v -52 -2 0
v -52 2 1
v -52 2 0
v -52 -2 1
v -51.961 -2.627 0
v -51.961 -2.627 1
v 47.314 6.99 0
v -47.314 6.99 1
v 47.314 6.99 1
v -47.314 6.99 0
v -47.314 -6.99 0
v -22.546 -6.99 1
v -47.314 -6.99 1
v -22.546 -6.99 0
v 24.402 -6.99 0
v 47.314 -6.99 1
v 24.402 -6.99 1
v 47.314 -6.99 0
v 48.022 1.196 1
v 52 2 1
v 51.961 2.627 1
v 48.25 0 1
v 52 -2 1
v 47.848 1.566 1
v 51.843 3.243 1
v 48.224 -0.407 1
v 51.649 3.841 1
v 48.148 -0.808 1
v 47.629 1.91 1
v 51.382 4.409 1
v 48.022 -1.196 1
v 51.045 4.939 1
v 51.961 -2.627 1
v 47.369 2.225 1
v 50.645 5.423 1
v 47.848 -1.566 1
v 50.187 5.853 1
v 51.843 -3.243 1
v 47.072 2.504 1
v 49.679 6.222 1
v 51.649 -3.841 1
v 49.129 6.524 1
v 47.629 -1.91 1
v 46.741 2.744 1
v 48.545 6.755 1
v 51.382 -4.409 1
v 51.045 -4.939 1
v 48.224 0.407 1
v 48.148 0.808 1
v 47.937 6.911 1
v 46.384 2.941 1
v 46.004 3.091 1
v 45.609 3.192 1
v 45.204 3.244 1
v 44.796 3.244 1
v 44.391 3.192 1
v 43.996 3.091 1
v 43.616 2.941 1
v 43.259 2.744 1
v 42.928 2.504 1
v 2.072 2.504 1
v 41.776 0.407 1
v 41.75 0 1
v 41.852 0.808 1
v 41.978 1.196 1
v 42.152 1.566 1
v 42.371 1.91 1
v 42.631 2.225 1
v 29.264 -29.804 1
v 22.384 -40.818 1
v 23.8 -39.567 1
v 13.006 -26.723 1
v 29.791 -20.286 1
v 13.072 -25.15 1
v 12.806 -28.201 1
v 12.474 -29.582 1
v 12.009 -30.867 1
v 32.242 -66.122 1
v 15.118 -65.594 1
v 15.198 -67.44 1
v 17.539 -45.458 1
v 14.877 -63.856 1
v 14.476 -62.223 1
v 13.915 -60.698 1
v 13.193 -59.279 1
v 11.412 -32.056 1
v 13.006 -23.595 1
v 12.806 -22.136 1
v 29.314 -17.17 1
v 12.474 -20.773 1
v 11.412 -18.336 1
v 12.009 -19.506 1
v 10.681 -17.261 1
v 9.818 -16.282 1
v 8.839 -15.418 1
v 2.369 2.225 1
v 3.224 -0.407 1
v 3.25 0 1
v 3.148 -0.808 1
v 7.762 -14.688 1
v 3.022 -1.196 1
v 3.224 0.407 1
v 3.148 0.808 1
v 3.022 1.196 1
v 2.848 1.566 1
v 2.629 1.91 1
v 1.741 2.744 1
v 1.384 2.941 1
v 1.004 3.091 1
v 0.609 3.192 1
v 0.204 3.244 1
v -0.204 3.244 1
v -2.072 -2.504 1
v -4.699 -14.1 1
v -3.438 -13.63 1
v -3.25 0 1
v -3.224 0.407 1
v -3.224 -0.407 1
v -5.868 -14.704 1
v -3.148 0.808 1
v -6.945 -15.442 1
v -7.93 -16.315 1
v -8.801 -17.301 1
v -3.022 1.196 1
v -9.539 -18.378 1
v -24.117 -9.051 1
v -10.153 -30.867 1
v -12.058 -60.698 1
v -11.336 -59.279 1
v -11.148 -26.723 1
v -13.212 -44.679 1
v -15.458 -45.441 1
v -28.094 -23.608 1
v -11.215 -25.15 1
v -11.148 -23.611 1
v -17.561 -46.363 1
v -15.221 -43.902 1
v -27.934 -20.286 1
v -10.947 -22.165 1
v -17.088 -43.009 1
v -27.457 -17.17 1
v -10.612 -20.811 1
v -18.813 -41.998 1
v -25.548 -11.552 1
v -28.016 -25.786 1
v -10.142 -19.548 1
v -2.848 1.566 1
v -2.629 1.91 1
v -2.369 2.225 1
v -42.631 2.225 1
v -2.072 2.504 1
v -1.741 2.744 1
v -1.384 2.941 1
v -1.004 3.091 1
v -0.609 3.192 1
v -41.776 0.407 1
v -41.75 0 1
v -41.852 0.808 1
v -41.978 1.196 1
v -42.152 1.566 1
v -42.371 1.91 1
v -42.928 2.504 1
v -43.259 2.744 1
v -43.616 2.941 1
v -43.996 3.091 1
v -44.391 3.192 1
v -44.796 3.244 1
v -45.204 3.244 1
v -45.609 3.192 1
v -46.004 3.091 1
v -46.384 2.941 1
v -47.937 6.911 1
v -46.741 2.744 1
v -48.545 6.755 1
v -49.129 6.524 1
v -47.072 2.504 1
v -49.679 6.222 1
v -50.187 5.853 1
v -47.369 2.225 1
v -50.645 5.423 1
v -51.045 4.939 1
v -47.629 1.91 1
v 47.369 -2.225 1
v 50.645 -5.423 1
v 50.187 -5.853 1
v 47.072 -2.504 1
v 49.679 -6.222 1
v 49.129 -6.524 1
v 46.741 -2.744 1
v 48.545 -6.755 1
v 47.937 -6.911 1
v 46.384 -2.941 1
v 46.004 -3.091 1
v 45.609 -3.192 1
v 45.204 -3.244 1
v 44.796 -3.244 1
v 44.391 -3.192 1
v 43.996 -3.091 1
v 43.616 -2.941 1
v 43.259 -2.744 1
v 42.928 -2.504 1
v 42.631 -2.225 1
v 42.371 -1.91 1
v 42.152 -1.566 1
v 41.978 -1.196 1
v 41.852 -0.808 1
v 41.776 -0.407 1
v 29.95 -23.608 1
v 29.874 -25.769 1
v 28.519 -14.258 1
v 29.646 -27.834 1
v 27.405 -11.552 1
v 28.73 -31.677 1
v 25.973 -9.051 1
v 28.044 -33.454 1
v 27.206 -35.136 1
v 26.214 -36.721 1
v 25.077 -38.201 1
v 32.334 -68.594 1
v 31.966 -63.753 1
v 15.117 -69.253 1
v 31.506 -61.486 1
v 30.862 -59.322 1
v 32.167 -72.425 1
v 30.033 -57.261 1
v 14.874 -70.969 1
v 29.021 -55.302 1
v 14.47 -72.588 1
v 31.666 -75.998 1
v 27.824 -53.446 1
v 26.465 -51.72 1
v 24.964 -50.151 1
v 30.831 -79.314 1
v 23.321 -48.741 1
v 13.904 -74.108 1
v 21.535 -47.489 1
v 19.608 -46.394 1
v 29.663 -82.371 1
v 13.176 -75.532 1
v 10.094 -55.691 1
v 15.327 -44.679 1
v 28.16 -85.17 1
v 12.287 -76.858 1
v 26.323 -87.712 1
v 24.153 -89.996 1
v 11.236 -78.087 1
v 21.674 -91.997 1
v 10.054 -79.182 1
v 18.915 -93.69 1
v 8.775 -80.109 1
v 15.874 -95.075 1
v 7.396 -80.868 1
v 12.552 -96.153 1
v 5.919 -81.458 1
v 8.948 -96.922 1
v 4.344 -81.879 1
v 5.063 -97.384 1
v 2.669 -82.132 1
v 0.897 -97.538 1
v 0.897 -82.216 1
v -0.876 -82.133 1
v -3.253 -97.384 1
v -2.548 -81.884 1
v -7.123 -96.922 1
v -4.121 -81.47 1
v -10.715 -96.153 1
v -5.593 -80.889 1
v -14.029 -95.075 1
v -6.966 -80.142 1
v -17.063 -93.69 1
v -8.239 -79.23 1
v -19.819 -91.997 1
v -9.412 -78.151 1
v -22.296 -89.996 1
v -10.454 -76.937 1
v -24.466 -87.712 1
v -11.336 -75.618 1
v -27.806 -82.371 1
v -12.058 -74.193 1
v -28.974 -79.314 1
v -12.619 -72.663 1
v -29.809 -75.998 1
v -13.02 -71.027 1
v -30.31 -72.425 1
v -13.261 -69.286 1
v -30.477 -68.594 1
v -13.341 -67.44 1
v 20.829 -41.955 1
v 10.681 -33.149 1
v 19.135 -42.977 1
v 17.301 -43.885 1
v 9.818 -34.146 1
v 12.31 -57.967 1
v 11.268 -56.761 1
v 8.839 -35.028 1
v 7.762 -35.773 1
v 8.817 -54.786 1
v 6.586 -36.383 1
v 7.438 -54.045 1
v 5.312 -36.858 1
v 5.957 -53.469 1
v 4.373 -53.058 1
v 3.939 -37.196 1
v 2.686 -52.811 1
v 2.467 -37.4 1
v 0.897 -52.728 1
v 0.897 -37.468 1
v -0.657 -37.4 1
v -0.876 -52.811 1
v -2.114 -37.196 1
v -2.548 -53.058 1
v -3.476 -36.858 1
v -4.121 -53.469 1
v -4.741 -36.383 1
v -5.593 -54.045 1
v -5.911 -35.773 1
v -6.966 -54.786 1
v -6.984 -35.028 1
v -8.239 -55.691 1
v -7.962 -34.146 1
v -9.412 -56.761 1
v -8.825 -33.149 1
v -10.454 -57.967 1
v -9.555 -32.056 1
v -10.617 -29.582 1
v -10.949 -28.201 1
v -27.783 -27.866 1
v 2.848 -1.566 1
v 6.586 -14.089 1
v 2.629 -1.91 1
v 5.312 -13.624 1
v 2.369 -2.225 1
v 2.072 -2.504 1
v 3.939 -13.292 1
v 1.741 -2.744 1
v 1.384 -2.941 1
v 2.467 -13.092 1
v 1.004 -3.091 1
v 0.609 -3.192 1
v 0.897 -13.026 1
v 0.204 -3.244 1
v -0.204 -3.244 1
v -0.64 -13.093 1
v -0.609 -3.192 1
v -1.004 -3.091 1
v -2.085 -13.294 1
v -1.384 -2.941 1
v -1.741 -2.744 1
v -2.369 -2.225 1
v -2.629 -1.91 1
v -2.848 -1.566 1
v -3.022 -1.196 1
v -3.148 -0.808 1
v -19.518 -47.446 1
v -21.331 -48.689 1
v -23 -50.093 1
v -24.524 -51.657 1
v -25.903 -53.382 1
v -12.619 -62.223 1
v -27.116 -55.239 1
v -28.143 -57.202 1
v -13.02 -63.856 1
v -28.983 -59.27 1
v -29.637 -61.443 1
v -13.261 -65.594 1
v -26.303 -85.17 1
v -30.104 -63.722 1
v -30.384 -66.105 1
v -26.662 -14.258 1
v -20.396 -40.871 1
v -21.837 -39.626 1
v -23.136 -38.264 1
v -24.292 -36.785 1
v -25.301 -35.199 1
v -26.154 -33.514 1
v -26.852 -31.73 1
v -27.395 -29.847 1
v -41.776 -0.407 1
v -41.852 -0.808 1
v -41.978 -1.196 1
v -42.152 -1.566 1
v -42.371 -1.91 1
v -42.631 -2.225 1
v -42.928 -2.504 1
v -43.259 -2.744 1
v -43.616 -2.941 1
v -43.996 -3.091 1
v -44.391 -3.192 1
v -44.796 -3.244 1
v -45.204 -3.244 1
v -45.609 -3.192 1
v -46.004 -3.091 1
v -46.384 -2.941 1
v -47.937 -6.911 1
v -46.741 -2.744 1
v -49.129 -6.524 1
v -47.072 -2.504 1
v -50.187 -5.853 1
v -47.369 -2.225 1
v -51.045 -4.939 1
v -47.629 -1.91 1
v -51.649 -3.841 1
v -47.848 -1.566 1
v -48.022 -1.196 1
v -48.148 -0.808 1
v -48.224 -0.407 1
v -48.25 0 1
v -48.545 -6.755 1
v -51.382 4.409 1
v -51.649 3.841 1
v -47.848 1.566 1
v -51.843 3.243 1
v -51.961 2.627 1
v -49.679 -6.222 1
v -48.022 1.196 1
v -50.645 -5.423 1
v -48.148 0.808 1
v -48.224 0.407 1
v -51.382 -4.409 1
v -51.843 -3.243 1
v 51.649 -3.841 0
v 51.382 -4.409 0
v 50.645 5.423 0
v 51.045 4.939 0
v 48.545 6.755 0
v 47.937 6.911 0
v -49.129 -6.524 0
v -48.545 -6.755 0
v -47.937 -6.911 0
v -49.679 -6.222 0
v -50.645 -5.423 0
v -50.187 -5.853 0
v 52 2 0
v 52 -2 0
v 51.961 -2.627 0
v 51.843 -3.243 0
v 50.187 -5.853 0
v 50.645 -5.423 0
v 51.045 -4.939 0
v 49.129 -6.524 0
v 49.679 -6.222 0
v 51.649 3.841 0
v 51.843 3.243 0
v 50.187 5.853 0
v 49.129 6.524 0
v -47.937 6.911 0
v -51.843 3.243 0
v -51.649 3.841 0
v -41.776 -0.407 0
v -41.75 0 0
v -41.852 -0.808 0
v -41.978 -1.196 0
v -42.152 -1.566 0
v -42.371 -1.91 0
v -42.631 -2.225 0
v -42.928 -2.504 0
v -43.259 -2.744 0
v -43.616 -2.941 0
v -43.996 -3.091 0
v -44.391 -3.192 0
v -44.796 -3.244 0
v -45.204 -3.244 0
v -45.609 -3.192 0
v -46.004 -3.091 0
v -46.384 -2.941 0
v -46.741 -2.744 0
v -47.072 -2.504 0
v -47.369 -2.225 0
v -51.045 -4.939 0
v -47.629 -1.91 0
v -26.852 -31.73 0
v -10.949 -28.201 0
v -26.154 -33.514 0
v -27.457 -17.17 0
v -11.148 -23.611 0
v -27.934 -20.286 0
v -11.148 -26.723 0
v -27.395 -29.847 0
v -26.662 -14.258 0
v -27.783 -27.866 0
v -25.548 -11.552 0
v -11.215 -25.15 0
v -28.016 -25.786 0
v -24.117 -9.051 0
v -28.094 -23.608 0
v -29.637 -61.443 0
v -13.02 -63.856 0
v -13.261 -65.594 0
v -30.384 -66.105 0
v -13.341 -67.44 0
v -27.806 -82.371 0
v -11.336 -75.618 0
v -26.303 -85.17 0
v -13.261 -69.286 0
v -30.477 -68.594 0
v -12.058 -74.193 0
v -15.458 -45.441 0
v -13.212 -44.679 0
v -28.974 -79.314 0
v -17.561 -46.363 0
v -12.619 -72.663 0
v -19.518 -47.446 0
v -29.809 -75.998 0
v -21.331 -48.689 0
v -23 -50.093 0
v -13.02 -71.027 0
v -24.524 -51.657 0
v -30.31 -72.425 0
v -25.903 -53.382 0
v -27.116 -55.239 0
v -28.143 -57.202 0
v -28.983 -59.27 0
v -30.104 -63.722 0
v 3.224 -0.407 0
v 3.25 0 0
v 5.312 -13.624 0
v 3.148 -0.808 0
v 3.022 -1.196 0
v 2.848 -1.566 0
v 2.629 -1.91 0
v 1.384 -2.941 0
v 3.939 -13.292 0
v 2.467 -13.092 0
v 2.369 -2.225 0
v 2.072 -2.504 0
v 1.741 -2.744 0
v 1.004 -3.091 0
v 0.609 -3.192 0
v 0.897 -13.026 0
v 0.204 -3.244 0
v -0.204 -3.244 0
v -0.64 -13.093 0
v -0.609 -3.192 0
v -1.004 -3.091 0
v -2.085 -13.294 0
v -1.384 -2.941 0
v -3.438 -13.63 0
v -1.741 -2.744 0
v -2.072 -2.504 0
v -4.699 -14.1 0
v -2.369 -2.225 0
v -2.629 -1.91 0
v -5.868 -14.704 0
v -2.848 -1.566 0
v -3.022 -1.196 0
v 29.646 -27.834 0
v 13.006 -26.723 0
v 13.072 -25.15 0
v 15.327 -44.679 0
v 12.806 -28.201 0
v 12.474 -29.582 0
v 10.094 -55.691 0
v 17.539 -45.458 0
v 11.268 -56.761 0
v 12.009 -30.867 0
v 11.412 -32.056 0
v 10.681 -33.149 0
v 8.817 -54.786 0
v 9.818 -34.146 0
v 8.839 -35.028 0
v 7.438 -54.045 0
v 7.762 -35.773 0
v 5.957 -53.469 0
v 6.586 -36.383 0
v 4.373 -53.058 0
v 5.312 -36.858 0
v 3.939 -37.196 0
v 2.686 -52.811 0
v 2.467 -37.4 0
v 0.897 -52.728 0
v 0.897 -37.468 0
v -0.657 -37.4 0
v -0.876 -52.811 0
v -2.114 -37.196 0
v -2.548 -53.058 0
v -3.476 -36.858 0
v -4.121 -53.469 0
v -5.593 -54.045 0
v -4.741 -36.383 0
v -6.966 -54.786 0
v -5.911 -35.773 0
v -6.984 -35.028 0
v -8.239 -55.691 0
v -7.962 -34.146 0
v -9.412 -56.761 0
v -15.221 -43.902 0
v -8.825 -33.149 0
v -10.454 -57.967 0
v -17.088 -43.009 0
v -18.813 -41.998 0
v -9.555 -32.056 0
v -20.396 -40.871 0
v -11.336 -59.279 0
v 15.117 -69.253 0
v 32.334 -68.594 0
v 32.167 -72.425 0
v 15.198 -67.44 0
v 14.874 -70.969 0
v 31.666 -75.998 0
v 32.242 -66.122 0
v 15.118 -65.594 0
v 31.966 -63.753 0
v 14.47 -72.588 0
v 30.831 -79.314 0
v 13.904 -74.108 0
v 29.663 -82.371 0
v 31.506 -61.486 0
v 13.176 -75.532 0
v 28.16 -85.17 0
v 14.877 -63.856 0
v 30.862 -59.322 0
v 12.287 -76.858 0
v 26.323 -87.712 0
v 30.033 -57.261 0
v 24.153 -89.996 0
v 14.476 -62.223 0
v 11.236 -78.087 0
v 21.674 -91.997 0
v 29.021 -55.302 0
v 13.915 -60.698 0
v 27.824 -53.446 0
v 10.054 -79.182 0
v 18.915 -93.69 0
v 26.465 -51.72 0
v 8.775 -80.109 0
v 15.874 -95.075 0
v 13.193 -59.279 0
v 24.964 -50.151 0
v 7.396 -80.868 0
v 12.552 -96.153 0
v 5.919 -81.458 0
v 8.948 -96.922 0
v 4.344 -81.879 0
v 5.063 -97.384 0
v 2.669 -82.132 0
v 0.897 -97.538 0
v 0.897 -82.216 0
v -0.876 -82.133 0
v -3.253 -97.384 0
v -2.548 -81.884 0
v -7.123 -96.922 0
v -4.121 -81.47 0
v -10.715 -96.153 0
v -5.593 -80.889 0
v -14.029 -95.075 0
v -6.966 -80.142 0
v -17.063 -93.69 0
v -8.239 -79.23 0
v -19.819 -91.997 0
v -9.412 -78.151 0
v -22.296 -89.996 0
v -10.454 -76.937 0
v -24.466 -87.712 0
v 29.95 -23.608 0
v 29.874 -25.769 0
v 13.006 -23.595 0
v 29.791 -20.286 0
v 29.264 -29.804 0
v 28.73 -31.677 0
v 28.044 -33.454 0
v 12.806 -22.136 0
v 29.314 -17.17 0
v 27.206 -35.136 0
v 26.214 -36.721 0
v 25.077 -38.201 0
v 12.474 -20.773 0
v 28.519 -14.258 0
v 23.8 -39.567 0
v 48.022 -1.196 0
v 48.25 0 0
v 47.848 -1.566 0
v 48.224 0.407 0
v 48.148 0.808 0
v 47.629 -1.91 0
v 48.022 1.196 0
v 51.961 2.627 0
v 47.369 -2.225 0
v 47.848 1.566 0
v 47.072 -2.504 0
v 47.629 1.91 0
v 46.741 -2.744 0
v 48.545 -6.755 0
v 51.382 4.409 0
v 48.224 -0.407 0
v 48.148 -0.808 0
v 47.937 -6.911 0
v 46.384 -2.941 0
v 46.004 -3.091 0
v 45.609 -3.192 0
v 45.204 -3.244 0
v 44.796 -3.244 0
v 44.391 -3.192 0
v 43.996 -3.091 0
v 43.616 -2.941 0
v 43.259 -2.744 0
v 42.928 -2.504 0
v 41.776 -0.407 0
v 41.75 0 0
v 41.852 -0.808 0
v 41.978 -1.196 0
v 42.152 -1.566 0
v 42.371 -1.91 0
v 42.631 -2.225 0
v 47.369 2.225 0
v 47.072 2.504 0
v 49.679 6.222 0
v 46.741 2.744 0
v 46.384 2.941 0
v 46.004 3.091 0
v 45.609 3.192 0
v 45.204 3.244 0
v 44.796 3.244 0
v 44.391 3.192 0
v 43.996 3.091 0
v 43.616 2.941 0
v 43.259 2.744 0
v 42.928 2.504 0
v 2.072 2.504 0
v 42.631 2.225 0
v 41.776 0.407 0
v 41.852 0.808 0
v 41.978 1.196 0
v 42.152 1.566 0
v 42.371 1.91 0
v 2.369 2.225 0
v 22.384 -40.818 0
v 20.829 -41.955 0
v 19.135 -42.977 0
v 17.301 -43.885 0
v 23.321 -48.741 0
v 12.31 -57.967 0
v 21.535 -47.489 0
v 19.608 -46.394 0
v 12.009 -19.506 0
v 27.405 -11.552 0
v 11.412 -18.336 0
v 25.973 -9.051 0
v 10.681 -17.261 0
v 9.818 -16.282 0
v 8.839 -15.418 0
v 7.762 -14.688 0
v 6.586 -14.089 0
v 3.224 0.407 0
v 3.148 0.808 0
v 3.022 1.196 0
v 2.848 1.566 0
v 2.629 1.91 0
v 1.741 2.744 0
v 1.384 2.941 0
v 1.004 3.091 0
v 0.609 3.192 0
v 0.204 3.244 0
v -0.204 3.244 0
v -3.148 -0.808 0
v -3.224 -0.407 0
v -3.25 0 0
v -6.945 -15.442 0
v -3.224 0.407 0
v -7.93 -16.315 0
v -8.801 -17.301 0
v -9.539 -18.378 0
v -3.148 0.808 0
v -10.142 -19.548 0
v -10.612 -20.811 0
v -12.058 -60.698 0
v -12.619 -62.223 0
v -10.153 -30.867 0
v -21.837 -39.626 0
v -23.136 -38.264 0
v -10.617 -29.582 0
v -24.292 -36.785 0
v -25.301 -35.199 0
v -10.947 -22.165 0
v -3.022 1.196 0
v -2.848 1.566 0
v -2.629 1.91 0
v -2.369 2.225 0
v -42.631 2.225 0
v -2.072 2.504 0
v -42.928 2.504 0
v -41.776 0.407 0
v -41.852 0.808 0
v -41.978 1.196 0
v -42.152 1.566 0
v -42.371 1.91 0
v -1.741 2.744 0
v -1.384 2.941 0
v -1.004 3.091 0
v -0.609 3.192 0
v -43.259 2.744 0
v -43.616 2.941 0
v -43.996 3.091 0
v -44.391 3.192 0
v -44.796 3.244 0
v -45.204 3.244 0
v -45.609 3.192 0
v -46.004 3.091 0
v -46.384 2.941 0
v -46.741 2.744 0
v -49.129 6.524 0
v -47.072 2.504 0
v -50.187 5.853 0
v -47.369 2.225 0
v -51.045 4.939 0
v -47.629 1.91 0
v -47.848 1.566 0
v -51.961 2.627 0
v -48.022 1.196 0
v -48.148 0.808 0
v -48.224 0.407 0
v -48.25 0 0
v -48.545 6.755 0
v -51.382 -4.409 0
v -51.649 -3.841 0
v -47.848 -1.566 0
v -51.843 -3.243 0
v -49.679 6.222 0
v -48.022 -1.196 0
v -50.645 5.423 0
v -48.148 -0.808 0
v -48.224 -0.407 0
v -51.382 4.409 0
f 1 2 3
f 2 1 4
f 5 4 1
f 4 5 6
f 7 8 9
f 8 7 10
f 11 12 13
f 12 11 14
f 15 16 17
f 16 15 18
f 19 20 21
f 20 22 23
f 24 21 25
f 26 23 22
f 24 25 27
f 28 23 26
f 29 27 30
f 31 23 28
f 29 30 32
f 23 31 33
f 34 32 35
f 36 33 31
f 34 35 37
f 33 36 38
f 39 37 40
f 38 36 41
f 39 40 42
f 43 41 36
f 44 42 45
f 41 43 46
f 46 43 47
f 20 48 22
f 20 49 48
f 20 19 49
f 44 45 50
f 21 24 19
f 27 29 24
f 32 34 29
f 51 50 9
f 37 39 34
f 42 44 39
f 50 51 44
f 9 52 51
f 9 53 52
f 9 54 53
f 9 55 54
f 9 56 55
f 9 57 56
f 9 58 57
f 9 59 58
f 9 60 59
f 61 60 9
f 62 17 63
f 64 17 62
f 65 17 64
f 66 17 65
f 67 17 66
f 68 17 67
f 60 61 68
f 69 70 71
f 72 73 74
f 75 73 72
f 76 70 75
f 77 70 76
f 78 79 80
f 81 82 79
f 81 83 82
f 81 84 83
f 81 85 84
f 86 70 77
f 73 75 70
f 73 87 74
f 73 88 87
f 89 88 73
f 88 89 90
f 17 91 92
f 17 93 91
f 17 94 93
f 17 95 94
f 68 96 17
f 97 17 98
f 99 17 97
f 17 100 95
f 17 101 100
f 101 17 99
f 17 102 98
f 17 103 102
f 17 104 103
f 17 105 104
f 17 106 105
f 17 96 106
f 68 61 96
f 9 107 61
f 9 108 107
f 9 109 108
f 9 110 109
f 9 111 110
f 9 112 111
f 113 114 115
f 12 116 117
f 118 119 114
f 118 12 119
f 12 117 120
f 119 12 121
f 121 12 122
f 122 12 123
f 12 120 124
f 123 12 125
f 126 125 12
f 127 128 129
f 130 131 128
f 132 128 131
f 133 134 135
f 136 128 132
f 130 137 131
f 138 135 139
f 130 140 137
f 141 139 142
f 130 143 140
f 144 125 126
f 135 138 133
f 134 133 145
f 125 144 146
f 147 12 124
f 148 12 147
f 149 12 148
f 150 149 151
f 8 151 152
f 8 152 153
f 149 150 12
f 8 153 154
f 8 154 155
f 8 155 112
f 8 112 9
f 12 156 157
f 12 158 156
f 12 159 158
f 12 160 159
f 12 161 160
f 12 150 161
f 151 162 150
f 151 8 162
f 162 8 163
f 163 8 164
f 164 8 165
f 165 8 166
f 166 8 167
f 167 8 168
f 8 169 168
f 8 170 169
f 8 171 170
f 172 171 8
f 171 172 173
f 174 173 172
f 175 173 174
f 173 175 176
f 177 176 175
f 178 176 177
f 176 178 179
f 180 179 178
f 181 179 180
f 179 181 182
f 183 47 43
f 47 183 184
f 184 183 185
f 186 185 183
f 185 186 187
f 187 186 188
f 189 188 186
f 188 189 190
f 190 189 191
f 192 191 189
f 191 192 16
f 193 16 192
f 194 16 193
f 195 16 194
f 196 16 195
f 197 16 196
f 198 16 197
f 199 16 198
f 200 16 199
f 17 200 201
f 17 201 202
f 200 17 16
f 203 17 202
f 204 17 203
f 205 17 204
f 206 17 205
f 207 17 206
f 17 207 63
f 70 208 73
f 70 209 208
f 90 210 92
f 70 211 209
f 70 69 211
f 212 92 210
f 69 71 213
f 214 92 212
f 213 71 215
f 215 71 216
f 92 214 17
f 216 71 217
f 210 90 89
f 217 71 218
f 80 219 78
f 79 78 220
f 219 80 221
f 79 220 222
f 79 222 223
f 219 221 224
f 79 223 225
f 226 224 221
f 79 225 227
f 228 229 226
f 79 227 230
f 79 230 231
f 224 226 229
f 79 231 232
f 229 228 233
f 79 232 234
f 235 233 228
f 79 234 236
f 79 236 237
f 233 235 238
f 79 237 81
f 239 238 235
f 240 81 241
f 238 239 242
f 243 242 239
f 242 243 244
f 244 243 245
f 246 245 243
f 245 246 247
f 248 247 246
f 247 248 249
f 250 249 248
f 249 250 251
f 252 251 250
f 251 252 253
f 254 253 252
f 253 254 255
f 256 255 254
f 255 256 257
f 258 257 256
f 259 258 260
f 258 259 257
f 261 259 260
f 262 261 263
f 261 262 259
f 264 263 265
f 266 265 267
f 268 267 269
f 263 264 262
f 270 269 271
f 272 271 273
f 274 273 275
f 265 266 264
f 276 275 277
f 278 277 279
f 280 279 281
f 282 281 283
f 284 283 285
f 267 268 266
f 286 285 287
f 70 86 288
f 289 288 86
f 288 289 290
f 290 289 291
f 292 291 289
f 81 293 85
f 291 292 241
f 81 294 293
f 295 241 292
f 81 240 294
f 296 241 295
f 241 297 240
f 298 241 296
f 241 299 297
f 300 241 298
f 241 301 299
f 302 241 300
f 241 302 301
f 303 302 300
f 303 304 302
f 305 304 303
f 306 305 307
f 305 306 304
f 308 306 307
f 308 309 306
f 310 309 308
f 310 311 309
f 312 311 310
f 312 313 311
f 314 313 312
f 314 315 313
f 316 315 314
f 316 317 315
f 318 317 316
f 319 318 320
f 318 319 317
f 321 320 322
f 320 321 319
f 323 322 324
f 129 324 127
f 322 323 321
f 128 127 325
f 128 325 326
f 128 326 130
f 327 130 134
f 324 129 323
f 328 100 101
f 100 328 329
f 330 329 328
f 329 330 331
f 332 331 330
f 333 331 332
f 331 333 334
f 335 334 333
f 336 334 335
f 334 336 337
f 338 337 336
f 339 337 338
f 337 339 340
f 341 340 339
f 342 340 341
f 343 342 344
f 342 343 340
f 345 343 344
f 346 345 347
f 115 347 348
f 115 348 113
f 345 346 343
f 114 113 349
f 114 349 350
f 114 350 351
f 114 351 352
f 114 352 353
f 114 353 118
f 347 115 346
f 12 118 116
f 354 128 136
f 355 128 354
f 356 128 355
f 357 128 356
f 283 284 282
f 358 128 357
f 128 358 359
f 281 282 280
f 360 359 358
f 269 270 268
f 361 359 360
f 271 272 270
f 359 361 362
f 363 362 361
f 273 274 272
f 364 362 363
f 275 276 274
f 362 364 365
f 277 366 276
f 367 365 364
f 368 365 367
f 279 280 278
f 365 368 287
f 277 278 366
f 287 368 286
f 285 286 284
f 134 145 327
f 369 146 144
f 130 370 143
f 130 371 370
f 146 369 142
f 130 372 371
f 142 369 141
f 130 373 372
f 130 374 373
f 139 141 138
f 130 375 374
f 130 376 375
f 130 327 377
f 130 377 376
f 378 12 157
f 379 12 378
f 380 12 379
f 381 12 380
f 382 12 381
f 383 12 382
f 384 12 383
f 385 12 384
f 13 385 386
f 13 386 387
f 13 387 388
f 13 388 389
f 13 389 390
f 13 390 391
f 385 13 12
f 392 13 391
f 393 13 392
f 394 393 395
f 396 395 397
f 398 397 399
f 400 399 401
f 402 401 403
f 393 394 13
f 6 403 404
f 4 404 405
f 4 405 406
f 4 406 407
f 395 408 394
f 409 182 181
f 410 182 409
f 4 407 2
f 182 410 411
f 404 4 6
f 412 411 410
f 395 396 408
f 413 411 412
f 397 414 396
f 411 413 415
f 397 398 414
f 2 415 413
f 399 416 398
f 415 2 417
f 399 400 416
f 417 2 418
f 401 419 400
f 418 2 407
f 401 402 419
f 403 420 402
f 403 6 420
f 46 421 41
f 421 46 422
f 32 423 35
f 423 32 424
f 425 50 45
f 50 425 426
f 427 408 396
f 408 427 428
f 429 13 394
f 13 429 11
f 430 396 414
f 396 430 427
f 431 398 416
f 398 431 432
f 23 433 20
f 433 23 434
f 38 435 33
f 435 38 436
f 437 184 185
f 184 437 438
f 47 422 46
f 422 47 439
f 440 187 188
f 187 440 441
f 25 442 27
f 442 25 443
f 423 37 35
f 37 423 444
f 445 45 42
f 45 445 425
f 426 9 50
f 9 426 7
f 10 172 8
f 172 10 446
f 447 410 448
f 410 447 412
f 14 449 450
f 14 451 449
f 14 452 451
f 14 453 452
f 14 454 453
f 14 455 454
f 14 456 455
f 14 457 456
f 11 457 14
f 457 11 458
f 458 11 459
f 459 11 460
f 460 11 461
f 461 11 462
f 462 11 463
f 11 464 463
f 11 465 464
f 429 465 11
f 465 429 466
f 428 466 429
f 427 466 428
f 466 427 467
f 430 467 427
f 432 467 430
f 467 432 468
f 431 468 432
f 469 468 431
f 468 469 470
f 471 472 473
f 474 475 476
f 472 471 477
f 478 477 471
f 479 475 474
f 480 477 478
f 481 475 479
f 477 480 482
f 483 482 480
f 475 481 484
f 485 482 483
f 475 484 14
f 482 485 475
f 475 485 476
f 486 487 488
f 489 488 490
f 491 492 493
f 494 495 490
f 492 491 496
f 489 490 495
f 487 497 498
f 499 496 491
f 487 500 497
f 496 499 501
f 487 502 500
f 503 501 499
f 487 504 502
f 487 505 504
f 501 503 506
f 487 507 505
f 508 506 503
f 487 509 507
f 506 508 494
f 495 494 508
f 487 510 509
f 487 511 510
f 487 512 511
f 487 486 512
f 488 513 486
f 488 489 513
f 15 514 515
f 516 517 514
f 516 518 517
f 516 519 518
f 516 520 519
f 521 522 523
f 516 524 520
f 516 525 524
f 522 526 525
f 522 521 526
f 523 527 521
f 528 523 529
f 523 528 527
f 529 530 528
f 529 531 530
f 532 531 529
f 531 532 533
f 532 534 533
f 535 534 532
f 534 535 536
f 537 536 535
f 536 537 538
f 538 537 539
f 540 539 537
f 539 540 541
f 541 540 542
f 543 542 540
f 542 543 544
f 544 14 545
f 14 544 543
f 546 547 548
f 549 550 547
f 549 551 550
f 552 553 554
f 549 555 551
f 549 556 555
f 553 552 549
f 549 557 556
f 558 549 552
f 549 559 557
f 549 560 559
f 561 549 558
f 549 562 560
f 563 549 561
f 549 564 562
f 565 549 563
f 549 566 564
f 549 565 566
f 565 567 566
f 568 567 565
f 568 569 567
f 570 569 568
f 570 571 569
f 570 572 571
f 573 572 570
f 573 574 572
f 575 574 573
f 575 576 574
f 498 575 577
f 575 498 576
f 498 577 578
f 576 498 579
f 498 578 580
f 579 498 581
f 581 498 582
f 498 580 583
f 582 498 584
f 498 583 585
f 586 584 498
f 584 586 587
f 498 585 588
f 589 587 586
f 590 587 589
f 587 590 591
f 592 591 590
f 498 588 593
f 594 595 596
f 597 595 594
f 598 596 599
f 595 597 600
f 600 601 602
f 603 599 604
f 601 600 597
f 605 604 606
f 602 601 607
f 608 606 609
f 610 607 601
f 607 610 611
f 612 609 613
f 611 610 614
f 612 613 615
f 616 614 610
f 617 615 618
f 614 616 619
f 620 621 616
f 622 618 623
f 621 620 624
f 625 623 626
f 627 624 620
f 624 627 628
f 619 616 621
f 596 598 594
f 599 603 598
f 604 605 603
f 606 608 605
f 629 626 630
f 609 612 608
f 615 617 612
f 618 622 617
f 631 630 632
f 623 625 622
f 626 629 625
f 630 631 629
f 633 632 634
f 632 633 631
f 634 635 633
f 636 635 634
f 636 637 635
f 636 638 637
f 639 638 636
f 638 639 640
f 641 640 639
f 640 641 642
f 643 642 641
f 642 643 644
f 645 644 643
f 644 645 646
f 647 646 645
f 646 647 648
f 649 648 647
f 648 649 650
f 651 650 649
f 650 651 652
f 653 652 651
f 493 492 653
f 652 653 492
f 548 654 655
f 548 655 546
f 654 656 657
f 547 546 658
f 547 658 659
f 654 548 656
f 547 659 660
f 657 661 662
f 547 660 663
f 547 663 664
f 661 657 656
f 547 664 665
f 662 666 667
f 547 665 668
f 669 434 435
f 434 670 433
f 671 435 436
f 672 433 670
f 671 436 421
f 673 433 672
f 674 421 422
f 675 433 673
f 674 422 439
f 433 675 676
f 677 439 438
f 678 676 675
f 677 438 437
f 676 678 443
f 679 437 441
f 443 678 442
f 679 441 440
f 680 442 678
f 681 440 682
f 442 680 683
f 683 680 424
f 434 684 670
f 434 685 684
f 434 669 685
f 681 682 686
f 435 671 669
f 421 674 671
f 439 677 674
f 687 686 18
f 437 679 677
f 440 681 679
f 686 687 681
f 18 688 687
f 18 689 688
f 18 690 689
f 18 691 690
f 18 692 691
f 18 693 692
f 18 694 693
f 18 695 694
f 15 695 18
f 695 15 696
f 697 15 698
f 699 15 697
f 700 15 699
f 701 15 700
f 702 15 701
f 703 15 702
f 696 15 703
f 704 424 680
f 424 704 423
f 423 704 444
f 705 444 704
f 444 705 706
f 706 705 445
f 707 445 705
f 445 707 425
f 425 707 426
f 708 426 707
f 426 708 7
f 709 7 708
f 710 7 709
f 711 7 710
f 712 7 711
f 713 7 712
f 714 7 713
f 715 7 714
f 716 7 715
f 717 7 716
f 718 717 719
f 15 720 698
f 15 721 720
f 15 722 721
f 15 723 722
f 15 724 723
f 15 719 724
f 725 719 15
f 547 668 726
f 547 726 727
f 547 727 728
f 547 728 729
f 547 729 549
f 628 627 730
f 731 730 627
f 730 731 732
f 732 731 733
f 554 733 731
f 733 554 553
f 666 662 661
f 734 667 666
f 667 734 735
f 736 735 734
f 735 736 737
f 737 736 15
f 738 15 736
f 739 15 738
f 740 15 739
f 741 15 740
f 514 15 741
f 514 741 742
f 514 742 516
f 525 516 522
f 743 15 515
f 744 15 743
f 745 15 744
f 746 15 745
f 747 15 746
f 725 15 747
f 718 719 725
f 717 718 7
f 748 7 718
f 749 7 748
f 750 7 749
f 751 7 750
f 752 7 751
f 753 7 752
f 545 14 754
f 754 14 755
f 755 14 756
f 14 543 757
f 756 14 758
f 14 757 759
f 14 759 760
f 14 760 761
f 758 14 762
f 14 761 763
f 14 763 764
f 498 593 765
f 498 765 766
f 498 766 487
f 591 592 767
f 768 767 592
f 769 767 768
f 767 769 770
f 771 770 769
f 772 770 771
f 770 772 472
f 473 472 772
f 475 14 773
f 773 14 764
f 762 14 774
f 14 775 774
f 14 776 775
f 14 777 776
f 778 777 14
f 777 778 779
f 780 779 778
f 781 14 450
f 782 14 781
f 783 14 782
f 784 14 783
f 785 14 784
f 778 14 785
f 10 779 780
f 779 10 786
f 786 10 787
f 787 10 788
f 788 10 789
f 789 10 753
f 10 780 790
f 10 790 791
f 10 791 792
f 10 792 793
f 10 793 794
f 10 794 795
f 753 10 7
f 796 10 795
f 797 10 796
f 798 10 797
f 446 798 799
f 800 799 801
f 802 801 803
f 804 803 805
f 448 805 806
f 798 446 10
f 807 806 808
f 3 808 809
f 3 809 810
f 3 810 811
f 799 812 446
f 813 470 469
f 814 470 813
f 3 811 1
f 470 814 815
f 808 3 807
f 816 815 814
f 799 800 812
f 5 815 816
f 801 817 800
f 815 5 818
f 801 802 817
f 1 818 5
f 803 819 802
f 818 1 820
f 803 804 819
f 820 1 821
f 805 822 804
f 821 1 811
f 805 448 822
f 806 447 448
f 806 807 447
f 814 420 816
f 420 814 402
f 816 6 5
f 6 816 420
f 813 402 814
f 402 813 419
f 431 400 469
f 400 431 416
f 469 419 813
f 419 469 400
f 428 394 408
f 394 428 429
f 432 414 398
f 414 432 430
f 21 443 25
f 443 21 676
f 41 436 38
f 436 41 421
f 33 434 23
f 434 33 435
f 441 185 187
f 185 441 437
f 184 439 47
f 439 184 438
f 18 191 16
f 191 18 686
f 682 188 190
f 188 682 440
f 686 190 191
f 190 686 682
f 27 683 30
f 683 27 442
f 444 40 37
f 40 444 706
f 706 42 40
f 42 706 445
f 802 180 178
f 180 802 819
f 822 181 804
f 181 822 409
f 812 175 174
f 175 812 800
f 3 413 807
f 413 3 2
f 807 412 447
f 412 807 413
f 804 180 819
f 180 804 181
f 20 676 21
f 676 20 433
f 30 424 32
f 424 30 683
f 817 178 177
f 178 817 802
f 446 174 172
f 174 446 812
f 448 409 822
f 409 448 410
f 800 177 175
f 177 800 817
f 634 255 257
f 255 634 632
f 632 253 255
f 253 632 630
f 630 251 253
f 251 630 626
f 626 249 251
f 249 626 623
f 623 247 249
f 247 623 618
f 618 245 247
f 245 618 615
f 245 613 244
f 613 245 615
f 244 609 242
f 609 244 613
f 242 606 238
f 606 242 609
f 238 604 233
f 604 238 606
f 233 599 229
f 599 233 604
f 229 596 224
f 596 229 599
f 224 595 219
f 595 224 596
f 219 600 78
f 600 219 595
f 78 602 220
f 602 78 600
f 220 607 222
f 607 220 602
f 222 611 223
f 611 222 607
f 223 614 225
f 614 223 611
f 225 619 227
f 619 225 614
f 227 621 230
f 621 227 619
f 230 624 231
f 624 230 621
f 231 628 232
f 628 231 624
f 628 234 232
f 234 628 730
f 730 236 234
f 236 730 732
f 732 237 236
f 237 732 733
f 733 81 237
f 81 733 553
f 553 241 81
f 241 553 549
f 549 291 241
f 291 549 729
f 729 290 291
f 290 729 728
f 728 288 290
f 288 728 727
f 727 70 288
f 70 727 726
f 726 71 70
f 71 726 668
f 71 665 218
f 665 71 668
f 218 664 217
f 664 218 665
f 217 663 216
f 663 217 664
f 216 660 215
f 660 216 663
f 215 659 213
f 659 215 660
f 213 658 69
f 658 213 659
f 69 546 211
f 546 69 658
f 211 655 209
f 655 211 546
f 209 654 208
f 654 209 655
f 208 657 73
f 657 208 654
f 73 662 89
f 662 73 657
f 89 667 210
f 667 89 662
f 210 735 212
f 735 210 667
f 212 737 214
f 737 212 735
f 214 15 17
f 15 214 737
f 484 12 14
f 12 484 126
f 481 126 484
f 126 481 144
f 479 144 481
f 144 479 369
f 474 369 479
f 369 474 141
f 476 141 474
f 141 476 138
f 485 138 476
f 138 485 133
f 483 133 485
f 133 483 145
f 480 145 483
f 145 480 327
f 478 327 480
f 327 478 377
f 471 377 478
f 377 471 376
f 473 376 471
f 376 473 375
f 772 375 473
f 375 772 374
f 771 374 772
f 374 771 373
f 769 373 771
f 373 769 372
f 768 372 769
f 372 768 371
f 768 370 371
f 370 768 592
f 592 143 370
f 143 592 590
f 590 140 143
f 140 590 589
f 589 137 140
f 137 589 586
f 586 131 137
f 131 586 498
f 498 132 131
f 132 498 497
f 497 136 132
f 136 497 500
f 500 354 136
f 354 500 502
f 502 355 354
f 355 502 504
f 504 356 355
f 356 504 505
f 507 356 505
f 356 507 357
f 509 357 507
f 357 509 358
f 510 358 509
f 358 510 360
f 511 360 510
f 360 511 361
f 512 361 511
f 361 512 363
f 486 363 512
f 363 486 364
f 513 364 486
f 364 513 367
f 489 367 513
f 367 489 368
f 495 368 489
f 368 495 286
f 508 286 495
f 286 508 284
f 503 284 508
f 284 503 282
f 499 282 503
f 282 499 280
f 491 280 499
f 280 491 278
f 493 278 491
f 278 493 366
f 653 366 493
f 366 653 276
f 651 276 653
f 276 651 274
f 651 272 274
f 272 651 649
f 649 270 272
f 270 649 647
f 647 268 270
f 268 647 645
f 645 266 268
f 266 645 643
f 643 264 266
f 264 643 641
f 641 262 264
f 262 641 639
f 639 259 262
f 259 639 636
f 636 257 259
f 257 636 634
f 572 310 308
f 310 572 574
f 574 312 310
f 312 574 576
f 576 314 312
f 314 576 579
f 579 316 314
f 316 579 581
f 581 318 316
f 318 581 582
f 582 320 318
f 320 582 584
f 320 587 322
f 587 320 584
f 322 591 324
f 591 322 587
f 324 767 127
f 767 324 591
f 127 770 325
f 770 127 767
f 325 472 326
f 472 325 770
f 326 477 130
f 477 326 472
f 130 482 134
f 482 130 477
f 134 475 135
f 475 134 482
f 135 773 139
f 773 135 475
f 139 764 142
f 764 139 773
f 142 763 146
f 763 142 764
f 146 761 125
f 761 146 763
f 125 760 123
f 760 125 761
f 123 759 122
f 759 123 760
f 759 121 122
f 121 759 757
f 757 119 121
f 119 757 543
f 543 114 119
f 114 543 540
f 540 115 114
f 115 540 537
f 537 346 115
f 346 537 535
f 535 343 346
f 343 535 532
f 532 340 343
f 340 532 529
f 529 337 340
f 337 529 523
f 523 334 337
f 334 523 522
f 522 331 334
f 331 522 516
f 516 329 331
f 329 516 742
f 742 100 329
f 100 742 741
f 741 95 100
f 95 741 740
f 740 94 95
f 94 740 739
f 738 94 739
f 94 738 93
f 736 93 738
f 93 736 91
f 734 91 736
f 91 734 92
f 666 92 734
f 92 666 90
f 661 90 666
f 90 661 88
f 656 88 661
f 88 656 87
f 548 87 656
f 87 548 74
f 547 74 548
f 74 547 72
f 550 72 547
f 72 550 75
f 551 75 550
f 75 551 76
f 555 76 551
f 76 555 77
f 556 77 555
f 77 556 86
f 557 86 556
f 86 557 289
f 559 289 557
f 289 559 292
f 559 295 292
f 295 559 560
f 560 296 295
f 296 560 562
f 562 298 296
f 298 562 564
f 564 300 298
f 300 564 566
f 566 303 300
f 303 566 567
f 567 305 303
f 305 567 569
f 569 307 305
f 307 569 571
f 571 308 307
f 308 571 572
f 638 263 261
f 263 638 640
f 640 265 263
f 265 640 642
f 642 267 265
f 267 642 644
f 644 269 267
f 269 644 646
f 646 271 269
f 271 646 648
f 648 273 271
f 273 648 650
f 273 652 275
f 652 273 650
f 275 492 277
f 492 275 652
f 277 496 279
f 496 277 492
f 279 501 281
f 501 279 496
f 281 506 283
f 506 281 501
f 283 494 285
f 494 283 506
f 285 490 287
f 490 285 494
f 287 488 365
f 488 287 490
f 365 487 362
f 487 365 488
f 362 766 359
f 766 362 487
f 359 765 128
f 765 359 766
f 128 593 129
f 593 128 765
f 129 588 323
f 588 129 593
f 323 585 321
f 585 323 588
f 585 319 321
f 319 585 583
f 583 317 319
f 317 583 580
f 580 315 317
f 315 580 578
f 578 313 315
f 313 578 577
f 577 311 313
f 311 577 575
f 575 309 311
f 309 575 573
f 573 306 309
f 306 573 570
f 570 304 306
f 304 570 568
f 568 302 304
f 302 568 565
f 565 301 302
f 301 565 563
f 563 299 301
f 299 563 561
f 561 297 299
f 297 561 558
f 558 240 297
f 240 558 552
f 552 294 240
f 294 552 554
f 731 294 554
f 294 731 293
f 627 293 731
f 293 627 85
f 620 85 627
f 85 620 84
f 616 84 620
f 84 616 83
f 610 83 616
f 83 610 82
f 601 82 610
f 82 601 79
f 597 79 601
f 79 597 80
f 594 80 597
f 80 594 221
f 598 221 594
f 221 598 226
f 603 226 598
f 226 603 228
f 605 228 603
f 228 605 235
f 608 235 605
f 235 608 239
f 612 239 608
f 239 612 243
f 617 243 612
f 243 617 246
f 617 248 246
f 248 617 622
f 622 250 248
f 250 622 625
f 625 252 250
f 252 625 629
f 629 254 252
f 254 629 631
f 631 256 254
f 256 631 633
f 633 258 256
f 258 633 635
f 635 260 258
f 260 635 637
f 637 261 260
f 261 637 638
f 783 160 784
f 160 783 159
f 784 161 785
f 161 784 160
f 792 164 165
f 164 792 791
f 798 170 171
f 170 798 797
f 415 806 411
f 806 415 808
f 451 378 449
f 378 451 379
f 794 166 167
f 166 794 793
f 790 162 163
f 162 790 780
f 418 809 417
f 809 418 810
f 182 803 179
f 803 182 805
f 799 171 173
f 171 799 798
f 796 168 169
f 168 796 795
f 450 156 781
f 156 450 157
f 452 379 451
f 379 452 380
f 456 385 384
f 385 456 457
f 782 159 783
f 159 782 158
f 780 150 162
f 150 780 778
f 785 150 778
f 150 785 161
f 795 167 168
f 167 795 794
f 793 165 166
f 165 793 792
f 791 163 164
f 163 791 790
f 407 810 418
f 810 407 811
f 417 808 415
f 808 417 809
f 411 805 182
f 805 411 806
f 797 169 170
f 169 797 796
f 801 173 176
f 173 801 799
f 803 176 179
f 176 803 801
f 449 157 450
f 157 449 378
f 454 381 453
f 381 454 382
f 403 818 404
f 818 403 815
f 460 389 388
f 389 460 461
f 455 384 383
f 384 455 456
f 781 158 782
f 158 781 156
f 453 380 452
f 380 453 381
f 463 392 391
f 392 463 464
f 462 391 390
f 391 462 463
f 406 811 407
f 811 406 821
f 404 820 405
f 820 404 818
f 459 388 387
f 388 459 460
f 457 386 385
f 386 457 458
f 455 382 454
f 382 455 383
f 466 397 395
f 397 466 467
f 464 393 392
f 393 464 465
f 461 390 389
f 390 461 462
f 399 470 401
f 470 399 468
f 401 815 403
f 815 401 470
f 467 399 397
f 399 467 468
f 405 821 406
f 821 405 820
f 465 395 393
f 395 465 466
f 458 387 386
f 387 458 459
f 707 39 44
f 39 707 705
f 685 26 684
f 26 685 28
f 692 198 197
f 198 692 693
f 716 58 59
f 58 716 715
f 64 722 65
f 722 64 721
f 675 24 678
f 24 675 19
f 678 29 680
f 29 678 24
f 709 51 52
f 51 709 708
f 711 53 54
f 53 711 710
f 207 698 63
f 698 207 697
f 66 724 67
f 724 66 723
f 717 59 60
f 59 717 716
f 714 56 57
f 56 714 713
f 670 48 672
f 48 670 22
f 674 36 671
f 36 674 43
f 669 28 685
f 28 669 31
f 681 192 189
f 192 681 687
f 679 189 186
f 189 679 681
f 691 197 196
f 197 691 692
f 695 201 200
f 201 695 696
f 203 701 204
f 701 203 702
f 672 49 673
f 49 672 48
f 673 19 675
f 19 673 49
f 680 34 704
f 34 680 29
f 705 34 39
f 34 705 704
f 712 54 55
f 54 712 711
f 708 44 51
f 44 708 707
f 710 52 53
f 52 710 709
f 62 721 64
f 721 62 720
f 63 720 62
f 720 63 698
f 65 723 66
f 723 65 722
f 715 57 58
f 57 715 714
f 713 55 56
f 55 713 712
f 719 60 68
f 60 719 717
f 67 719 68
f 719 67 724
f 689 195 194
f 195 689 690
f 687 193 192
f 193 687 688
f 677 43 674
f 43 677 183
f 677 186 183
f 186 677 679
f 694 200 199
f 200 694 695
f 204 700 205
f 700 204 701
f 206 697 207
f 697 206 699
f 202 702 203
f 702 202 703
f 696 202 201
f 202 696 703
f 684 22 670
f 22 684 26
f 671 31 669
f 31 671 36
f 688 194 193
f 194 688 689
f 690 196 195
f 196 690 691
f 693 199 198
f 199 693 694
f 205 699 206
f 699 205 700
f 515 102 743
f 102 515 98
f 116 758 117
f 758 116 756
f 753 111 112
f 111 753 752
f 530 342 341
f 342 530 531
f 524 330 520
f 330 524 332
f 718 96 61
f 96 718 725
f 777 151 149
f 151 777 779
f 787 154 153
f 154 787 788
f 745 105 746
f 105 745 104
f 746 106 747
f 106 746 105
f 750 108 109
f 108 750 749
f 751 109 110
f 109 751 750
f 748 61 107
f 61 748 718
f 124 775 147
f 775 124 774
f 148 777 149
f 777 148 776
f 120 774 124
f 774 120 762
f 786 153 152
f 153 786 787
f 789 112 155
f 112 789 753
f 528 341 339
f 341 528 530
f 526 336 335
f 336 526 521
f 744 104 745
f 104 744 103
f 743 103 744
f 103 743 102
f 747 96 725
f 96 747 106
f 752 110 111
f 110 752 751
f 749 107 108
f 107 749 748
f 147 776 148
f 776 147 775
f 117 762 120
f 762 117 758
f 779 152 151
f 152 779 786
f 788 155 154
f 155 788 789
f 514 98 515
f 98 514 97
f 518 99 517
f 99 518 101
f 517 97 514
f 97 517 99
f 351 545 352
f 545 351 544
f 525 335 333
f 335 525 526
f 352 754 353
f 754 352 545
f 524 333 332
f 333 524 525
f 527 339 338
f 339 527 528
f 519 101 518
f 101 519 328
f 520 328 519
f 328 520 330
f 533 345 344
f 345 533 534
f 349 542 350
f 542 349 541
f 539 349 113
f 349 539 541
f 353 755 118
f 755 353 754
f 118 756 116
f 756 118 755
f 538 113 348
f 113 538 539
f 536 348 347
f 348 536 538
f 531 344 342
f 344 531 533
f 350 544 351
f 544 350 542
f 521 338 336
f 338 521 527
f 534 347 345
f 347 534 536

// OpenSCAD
$fn = 50;


difference() {
	union() {
		translate(v = [0, 0, 0]) {
			rotate(a = [0, 0, 0]) {
				hull() {
					translate(v = [-47.0000000000, 2.0000000000, 0]) {
						rotate(a = [0, 0, 0]) {
							translate(v = [0, 0, 0]) {
								rotate(a = [0, 0, 0]) {
									cylinder(h = 1, r = 5);
								}
							}
						}
					}
					translate(v = [47.0000000000, 2.0000000000, 0]) {
						rotate(a = [0, 0, 0]) {
							translate(v = [0, 0, 0]) {
								rotate(a = [0, 0, 0]) {
									cylinder(h = 1, r = 5);
								}
							}
						}
					}
					translate(v = [-47.0000000000, -2.0000000000, 0]) {
						rotate(a = [0, 0, 0]) {
							translate(v = [0, 0, 0]) {
								rotate(a = [0, 0, 0]) {
									cylinder(h = 1, r = 5);
								}
							}
						}
					}
					translate(v = [47.0000000000, -2.0000000000, 0]) {
						rotate(a = [0, 0, 0]) {
							translate(v = [0, 0, 0]) {
								rotate(a = [0, 0, 0]) {
									cylinder(h = 1, r = 5);
								}
							}
						}
					}
				}
			}
		}
		translate(v = [0, 0, 0]) {
			rotate(a = [0, 0, 0]) {
				linear_extrude(height = 1) {
					text(font = "DejaVu Sans Mono:style=Bold", halign = "center", size = 95, text = "8", valign = "top");
				}
			}
		}
	}
	union() {
		translate(v = [-45.0000000000, 0.0000000000, -125.0000000000]) {
			rotate(a = [0, 0, 0]) {
				cylinder(h = 250, r = 3.2500000000);
			}
		}
		translate(v = [45.0000000000, 0.0000000000, -125.0000000000]) {
			rotate(a = [0, 0, 0]) {
				cylinder(h = 250, r = 3.2500000000);
			}
		}
		translate(v = [45.0000000000, 0.0000000000, -125.0000000000]) {
			rotate(a = [0, 0, 0]) {
				cylinder(h = 250, r = 3.2500000000);
			}
		}
		translate(v = [0, 0, -125.0000000000]) {
			rotate(a = [0, 0, 0]) {
				cylinder(h = 250, r = 3.2500000000);
			}
		}
	}
}
